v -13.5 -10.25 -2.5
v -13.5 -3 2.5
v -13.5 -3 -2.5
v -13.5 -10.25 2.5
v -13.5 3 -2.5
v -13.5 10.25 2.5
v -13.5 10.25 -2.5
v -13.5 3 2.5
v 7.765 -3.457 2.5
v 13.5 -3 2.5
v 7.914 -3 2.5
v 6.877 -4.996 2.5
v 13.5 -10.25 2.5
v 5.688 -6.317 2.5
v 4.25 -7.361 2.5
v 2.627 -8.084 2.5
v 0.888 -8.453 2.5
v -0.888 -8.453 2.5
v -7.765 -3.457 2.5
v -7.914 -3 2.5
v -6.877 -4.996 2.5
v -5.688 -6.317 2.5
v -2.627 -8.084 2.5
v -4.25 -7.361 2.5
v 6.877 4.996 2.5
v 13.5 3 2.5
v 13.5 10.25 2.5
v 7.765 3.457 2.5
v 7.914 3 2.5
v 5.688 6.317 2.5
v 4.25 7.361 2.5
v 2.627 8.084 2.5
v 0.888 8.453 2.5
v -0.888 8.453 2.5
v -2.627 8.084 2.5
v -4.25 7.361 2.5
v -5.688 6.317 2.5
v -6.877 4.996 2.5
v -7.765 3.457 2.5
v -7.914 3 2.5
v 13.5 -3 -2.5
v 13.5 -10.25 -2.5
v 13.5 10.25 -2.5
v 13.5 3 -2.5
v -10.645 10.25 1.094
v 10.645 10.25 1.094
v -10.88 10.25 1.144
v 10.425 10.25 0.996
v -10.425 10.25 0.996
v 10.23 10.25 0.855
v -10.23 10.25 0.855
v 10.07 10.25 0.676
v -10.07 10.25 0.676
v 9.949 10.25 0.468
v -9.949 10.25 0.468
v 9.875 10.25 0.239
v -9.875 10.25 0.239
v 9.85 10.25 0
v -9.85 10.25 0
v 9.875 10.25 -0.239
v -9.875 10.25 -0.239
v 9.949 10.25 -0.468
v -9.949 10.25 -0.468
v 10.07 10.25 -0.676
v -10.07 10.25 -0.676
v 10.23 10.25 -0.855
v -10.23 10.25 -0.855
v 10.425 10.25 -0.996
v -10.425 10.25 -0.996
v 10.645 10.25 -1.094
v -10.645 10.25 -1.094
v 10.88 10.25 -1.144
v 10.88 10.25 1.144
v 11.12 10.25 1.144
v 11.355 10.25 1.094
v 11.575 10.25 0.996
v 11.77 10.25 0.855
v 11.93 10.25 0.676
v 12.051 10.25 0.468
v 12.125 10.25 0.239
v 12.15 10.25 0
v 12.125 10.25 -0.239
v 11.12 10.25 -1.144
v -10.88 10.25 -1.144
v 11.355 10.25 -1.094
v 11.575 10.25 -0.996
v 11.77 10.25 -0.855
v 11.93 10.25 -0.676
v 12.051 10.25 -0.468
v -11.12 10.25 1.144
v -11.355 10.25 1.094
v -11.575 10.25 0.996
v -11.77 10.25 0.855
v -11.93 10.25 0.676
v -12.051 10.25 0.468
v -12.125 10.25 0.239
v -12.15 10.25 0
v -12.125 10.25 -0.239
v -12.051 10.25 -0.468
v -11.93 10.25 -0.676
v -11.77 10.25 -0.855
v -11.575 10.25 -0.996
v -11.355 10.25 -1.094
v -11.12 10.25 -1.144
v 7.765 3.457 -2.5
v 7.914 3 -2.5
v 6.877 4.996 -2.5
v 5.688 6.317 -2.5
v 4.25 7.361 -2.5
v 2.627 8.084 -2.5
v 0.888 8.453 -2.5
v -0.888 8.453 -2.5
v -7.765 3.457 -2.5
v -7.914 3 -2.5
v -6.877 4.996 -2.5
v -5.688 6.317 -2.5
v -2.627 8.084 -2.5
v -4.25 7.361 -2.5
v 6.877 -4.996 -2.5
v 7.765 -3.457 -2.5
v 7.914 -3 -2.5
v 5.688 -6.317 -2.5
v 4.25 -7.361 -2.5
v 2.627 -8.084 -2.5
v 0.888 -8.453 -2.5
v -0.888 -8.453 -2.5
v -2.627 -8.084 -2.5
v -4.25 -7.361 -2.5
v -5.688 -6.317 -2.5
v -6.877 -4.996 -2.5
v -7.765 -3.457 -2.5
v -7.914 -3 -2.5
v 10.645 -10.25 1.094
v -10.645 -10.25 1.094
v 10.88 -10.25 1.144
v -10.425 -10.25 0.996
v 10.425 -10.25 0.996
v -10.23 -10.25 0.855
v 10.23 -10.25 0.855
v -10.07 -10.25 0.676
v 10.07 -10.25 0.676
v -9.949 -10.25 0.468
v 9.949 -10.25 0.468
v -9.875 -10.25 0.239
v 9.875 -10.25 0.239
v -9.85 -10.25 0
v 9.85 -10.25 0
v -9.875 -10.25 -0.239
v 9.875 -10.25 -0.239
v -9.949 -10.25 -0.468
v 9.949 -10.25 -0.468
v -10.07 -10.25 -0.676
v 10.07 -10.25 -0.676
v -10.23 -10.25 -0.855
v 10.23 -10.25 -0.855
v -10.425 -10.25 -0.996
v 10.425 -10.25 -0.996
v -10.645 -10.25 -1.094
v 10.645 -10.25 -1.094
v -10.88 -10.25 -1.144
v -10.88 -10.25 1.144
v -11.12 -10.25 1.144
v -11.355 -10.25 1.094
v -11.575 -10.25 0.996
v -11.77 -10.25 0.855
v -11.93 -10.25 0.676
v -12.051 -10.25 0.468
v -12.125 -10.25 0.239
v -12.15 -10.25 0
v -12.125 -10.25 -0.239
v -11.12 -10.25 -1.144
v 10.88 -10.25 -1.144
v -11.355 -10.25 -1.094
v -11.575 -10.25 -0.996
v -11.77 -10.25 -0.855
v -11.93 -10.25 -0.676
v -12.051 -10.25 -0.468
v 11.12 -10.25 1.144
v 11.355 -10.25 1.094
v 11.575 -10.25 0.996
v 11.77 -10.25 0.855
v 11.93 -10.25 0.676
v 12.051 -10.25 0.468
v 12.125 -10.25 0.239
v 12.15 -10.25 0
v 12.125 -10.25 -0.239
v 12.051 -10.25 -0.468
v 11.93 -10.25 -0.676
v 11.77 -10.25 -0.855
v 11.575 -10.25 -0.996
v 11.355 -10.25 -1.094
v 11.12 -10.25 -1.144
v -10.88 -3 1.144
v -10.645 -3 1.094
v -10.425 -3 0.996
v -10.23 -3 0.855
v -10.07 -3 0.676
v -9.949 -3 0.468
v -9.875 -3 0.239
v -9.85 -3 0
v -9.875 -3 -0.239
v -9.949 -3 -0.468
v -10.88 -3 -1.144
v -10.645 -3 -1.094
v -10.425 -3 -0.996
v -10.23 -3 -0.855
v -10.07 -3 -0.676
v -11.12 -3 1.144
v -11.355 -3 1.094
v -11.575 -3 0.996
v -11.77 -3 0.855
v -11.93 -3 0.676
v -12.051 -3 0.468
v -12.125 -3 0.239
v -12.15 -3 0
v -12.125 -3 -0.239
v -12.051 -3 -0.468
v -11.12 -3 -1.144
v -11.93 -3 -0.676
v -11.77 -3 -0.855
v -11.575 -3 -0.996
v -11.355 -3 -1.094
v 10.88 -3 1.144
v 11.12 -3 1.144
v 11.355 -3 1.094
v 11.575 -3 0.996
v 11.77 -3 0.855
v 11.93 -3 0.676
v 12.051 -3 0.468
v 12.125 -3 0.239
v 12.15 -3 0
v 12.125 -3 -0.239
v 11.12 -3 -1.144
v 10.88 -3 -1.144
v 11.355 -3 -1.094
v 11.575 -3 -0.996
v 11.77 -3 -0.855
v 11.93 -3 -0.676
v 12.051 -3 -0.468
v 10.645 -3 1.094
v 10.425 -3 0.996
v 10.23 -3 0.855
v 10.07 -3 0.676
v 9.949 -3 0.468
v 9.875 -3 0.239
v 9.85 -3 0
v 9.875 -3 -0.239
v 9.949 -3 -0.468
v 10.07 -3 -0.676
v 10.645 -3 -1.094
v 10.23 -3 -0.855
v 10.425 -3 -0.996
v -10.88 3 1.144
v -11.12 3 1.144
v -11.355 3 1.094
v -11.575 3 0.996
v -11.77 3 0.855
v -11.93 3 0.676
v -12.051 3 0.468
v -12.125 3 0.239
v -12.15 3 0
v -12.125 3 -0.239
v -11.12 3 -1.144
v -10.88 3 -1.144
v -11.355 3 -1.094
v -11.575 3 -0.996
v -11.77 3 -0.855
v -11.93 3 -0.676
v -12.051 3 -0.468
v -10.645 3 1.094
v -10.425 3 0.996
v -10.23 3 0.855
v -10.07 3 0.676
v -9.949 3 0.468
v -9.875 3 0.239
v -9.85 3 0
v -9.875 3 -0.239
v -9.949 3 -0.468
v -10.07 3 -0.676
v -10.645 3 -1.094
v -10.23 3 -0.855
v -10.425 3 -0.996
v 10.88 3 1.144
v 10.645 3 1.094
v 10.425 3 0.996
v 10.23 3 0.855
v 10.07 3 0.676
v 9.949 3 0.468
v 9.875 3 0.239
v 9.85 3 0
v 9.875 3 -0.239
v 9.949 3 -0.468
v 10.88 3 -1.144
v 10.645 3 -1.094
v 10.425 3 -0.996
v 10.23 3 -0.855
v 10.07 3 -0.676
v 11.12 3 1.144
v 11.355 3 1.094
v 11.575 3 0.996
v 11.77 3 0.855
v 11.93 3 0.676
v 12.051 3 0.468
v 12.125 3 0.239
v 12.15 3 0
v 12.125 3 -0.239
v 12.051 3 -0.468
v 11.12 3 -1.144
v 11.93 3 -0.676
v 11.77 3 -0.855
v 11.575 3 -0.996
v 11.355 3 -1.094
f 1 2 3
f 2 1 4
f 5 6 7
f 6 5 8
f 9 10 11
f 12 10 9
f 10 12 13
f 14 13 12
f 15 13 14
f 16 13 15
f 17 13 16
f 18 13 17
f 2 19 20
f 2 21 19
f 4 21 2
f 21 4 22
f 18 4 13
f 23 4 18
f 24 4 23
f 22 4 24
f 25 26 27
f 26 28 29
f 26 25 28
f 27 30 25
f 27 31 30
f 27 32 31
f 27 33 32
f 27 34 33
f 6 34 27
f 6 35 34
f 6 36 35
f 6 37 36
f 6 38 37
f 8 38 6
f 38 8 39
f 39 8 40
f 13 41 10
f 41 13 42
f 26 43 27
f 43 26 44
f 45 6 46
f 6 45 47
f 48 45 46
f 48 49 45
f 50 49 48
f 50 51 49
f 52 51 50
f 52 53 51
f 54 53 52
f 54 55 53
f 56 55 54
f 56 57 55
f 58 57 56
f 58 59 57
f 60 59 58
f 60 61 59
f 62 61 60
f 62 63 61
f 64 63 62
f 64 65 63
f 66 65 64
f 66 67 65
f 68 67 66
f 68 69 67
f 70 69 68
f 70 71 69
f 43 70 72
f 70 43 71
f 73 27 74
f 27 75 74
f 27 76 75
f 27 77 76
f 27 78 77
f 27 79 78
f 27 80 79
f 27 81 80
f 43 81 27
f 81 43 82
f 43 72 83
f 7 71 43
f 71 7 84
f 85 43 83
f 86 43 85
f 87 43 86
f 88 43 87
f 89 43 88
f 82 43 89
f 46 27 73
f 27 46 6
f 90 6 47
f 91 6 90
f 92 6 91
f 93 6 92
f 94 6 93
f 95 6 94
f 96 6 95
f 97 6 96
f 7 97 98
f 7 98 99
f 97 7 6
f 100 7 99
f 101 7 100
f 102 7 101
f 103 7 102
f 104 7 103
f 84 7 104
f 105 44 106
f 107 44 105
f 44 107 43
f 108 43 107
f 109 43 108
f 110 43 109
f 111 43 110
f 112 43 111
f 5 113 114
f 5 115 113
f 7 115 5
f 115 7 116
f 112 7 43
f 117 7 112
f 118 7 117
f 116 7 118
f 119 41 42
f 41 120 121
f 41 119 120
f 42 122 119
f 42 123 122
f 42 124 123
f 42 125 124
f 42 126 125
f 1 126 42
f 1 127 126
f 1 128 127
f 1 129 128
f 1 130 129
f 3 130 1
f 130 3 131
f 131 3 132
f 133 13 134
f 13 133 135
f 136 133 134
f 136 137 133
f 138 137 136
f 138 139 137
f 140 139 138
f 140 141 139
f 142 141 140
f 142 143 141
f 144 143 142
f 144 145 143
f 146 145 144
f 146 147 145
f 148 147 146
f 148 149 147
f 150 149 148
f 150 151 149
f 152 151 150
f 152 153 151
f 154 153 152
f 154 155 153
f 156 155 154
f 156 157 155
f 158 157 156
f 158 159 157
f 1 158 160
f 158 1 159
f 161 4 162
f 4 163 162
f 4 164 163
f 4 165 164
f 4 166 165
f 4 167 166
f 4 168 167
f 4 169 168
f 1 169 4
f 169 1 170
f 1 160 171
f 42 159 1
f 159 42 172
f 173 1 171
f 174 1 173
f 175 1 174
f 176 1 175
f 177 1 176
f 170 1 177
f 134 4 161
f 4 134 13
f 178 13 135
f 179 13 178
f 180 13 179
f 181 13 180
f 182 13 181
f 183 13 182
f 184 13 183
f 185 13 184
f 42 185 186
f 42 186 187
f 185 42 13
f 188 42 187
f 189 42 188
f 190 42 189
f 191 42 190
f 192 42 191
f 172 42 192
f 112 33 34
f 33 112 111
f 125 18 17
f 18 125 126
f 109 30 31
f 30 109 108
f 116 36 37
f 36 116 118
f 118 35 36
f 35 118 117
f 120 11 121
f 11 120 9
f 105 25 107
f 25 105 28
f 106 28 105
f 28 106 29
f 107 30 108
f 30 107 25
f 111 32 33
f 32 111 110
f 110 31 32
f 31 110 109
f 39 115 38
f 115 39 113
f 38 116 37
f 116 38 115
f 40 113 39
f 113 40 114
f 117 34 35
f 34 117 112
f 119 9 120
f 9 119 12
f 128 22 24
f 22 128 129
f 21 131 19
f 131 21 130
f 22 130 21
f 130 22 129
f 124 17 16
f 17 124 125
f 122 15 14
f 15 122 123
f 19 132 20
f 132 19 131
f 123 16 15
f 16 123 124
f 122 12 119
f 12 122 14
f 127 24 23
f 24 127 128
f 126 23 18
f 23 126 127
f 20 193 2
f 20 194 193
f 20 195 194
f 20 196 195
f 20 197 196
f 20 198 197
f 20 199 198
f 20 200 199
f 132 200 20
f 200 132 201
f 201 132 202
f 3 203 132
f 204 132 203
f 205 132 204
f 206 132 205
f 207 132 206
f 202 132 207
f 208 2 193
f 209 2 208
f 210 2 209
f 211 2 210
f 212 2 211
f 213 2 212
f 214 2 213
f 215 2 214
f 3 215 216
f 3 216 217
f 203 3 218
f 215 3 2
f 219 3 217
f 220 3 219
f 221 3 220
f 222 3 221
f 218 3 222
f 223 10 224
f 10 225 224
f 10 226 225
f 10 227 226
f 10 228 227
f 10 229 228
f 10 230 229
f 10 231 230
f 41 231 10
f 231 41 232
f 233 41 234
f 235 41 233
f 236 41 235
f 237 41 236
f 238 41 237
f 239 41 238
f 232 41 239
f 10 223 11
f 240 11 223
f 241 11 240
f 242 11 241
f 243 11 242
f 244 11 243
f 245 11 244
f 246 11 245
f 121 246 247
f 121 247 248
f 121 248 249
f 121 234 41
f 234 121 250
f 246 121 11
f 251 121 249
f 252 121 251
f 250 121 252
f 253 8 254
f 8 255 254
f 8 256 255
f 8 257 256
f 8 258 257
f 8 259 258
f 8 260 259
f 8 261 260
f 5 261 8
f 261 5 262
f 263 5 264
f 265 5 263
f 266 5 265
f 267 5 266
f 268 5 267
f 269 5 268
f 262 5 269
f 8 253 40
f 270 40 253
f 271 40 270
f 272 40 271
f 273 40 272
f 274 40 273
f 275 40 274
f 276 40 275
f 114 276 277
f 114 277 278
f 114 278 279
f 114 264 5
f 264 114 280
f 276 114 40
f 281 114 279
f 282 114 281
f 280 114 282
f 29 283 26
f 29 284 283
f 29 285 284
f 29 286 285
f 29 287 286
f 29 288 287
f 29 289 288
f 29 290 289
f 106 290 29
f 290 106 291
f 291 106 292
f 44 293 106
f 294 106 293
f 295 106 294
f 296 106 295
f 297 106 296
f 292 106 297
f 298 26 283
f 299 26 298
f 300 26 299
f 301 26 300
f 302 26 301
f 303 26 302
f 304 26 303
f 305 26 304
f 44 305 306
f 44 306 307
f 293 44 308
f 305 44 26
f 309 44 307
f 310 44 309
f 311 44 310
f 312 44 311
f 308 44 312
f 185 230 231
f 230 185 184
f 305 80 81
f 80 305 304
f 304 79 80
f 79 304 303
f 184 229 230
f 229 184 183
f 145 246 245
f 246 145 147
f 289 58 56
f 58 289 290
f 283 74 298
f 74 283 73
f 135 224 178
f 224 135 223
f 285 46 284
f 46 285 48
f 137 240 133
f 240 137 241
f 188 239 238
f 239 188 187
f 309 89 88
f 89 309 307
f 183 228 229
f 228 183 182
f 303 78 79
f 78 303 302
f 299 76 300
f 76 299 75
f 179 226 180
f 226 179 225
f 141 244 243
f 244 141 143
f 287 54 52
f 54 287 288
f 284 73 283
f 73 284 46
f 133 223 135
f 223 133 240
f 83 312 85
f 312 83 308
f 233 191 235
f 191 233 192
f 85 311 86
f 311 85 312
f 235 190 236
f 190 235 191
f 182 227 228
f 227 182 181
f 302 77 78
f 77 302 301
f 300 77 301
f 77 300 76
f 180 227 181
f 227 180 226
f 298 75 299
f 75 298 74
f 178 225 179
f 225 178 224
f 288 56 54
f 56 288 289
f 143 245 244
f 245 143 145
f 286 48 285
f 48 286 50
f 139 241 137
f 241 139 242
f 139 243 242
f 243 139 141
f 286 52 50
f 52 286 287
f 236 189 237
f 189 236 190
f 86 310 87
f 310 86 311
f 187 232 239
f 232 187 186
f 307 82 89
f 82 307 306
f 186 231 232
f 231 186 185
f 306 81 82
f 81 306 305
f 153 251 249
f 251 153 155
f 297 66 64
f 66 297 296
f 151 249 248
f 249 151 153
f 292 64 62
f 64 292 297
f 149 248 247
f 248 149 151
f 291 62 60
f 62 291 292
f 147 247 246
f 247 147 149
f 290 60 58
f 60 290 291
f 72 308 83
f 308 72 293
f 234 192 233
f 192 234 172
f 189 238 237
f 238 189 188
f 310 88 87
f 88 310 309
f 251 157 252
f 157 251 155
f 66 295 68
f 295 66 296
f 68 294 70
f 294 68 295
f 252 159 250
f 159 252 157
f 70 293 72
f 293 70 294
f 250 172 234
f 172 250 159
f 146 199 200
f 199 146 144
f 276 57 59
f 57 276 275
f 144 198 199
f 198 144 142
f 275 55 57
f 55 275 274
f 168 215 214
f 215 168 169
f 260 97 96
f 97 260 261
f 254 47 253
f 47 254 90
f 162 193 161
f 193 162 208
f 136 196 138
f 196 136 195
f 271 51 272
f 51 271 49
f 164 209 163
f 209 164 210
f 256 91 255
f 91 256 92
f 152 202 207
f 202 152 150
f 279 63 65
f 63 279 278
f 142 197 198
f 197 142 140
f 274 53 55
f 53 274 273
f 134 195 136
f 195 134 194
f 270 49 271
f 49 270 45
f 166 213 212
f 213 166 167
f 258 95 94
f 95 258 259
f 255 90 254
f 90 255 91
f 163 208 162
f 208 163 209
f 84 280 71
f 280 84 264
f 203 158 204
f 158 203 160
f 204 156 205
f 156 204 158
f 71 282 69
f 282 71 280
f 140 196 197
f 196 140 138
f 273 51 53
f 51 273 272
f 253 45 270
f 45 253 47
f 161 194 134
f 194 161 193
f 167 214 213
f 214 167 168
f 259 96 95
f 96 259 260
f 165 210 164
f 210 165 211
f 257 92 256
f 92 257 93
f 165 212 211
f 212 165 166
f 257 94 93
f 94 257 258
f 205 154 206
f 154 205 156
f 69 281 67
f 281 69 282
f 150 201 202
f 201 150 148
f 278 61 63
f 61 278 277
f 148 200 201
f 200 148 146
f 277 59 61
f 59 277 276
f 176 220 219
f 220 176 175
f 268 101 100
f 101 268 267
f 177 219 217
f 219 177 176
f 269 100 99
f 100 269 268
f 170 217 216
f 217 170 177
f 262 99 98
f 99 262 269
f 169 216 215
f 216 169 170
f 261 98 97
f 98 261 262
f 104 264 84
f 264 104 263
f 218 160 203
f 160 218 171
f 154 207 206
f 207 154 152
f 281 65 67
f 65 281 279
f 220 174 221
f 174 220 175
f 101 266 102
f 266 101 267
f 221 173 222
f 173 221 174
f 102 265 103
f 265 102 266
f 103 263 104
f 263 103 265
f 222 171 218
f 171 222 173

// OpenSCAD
$fn=30;
difference() {
cube([27, 20.5, 5], center=true);
cylinder(d= 17, h=10 , center=true);
cube([28,6,10], center=true);

#translate([11,0,0]) rotate([90,0,0]) cylinder(d= 2.3, h=30 , center=true);
#translate([-11,0,0]) rotate([90,0,0]) cylinder(d= 2.3, h=30 , center=true);
}
